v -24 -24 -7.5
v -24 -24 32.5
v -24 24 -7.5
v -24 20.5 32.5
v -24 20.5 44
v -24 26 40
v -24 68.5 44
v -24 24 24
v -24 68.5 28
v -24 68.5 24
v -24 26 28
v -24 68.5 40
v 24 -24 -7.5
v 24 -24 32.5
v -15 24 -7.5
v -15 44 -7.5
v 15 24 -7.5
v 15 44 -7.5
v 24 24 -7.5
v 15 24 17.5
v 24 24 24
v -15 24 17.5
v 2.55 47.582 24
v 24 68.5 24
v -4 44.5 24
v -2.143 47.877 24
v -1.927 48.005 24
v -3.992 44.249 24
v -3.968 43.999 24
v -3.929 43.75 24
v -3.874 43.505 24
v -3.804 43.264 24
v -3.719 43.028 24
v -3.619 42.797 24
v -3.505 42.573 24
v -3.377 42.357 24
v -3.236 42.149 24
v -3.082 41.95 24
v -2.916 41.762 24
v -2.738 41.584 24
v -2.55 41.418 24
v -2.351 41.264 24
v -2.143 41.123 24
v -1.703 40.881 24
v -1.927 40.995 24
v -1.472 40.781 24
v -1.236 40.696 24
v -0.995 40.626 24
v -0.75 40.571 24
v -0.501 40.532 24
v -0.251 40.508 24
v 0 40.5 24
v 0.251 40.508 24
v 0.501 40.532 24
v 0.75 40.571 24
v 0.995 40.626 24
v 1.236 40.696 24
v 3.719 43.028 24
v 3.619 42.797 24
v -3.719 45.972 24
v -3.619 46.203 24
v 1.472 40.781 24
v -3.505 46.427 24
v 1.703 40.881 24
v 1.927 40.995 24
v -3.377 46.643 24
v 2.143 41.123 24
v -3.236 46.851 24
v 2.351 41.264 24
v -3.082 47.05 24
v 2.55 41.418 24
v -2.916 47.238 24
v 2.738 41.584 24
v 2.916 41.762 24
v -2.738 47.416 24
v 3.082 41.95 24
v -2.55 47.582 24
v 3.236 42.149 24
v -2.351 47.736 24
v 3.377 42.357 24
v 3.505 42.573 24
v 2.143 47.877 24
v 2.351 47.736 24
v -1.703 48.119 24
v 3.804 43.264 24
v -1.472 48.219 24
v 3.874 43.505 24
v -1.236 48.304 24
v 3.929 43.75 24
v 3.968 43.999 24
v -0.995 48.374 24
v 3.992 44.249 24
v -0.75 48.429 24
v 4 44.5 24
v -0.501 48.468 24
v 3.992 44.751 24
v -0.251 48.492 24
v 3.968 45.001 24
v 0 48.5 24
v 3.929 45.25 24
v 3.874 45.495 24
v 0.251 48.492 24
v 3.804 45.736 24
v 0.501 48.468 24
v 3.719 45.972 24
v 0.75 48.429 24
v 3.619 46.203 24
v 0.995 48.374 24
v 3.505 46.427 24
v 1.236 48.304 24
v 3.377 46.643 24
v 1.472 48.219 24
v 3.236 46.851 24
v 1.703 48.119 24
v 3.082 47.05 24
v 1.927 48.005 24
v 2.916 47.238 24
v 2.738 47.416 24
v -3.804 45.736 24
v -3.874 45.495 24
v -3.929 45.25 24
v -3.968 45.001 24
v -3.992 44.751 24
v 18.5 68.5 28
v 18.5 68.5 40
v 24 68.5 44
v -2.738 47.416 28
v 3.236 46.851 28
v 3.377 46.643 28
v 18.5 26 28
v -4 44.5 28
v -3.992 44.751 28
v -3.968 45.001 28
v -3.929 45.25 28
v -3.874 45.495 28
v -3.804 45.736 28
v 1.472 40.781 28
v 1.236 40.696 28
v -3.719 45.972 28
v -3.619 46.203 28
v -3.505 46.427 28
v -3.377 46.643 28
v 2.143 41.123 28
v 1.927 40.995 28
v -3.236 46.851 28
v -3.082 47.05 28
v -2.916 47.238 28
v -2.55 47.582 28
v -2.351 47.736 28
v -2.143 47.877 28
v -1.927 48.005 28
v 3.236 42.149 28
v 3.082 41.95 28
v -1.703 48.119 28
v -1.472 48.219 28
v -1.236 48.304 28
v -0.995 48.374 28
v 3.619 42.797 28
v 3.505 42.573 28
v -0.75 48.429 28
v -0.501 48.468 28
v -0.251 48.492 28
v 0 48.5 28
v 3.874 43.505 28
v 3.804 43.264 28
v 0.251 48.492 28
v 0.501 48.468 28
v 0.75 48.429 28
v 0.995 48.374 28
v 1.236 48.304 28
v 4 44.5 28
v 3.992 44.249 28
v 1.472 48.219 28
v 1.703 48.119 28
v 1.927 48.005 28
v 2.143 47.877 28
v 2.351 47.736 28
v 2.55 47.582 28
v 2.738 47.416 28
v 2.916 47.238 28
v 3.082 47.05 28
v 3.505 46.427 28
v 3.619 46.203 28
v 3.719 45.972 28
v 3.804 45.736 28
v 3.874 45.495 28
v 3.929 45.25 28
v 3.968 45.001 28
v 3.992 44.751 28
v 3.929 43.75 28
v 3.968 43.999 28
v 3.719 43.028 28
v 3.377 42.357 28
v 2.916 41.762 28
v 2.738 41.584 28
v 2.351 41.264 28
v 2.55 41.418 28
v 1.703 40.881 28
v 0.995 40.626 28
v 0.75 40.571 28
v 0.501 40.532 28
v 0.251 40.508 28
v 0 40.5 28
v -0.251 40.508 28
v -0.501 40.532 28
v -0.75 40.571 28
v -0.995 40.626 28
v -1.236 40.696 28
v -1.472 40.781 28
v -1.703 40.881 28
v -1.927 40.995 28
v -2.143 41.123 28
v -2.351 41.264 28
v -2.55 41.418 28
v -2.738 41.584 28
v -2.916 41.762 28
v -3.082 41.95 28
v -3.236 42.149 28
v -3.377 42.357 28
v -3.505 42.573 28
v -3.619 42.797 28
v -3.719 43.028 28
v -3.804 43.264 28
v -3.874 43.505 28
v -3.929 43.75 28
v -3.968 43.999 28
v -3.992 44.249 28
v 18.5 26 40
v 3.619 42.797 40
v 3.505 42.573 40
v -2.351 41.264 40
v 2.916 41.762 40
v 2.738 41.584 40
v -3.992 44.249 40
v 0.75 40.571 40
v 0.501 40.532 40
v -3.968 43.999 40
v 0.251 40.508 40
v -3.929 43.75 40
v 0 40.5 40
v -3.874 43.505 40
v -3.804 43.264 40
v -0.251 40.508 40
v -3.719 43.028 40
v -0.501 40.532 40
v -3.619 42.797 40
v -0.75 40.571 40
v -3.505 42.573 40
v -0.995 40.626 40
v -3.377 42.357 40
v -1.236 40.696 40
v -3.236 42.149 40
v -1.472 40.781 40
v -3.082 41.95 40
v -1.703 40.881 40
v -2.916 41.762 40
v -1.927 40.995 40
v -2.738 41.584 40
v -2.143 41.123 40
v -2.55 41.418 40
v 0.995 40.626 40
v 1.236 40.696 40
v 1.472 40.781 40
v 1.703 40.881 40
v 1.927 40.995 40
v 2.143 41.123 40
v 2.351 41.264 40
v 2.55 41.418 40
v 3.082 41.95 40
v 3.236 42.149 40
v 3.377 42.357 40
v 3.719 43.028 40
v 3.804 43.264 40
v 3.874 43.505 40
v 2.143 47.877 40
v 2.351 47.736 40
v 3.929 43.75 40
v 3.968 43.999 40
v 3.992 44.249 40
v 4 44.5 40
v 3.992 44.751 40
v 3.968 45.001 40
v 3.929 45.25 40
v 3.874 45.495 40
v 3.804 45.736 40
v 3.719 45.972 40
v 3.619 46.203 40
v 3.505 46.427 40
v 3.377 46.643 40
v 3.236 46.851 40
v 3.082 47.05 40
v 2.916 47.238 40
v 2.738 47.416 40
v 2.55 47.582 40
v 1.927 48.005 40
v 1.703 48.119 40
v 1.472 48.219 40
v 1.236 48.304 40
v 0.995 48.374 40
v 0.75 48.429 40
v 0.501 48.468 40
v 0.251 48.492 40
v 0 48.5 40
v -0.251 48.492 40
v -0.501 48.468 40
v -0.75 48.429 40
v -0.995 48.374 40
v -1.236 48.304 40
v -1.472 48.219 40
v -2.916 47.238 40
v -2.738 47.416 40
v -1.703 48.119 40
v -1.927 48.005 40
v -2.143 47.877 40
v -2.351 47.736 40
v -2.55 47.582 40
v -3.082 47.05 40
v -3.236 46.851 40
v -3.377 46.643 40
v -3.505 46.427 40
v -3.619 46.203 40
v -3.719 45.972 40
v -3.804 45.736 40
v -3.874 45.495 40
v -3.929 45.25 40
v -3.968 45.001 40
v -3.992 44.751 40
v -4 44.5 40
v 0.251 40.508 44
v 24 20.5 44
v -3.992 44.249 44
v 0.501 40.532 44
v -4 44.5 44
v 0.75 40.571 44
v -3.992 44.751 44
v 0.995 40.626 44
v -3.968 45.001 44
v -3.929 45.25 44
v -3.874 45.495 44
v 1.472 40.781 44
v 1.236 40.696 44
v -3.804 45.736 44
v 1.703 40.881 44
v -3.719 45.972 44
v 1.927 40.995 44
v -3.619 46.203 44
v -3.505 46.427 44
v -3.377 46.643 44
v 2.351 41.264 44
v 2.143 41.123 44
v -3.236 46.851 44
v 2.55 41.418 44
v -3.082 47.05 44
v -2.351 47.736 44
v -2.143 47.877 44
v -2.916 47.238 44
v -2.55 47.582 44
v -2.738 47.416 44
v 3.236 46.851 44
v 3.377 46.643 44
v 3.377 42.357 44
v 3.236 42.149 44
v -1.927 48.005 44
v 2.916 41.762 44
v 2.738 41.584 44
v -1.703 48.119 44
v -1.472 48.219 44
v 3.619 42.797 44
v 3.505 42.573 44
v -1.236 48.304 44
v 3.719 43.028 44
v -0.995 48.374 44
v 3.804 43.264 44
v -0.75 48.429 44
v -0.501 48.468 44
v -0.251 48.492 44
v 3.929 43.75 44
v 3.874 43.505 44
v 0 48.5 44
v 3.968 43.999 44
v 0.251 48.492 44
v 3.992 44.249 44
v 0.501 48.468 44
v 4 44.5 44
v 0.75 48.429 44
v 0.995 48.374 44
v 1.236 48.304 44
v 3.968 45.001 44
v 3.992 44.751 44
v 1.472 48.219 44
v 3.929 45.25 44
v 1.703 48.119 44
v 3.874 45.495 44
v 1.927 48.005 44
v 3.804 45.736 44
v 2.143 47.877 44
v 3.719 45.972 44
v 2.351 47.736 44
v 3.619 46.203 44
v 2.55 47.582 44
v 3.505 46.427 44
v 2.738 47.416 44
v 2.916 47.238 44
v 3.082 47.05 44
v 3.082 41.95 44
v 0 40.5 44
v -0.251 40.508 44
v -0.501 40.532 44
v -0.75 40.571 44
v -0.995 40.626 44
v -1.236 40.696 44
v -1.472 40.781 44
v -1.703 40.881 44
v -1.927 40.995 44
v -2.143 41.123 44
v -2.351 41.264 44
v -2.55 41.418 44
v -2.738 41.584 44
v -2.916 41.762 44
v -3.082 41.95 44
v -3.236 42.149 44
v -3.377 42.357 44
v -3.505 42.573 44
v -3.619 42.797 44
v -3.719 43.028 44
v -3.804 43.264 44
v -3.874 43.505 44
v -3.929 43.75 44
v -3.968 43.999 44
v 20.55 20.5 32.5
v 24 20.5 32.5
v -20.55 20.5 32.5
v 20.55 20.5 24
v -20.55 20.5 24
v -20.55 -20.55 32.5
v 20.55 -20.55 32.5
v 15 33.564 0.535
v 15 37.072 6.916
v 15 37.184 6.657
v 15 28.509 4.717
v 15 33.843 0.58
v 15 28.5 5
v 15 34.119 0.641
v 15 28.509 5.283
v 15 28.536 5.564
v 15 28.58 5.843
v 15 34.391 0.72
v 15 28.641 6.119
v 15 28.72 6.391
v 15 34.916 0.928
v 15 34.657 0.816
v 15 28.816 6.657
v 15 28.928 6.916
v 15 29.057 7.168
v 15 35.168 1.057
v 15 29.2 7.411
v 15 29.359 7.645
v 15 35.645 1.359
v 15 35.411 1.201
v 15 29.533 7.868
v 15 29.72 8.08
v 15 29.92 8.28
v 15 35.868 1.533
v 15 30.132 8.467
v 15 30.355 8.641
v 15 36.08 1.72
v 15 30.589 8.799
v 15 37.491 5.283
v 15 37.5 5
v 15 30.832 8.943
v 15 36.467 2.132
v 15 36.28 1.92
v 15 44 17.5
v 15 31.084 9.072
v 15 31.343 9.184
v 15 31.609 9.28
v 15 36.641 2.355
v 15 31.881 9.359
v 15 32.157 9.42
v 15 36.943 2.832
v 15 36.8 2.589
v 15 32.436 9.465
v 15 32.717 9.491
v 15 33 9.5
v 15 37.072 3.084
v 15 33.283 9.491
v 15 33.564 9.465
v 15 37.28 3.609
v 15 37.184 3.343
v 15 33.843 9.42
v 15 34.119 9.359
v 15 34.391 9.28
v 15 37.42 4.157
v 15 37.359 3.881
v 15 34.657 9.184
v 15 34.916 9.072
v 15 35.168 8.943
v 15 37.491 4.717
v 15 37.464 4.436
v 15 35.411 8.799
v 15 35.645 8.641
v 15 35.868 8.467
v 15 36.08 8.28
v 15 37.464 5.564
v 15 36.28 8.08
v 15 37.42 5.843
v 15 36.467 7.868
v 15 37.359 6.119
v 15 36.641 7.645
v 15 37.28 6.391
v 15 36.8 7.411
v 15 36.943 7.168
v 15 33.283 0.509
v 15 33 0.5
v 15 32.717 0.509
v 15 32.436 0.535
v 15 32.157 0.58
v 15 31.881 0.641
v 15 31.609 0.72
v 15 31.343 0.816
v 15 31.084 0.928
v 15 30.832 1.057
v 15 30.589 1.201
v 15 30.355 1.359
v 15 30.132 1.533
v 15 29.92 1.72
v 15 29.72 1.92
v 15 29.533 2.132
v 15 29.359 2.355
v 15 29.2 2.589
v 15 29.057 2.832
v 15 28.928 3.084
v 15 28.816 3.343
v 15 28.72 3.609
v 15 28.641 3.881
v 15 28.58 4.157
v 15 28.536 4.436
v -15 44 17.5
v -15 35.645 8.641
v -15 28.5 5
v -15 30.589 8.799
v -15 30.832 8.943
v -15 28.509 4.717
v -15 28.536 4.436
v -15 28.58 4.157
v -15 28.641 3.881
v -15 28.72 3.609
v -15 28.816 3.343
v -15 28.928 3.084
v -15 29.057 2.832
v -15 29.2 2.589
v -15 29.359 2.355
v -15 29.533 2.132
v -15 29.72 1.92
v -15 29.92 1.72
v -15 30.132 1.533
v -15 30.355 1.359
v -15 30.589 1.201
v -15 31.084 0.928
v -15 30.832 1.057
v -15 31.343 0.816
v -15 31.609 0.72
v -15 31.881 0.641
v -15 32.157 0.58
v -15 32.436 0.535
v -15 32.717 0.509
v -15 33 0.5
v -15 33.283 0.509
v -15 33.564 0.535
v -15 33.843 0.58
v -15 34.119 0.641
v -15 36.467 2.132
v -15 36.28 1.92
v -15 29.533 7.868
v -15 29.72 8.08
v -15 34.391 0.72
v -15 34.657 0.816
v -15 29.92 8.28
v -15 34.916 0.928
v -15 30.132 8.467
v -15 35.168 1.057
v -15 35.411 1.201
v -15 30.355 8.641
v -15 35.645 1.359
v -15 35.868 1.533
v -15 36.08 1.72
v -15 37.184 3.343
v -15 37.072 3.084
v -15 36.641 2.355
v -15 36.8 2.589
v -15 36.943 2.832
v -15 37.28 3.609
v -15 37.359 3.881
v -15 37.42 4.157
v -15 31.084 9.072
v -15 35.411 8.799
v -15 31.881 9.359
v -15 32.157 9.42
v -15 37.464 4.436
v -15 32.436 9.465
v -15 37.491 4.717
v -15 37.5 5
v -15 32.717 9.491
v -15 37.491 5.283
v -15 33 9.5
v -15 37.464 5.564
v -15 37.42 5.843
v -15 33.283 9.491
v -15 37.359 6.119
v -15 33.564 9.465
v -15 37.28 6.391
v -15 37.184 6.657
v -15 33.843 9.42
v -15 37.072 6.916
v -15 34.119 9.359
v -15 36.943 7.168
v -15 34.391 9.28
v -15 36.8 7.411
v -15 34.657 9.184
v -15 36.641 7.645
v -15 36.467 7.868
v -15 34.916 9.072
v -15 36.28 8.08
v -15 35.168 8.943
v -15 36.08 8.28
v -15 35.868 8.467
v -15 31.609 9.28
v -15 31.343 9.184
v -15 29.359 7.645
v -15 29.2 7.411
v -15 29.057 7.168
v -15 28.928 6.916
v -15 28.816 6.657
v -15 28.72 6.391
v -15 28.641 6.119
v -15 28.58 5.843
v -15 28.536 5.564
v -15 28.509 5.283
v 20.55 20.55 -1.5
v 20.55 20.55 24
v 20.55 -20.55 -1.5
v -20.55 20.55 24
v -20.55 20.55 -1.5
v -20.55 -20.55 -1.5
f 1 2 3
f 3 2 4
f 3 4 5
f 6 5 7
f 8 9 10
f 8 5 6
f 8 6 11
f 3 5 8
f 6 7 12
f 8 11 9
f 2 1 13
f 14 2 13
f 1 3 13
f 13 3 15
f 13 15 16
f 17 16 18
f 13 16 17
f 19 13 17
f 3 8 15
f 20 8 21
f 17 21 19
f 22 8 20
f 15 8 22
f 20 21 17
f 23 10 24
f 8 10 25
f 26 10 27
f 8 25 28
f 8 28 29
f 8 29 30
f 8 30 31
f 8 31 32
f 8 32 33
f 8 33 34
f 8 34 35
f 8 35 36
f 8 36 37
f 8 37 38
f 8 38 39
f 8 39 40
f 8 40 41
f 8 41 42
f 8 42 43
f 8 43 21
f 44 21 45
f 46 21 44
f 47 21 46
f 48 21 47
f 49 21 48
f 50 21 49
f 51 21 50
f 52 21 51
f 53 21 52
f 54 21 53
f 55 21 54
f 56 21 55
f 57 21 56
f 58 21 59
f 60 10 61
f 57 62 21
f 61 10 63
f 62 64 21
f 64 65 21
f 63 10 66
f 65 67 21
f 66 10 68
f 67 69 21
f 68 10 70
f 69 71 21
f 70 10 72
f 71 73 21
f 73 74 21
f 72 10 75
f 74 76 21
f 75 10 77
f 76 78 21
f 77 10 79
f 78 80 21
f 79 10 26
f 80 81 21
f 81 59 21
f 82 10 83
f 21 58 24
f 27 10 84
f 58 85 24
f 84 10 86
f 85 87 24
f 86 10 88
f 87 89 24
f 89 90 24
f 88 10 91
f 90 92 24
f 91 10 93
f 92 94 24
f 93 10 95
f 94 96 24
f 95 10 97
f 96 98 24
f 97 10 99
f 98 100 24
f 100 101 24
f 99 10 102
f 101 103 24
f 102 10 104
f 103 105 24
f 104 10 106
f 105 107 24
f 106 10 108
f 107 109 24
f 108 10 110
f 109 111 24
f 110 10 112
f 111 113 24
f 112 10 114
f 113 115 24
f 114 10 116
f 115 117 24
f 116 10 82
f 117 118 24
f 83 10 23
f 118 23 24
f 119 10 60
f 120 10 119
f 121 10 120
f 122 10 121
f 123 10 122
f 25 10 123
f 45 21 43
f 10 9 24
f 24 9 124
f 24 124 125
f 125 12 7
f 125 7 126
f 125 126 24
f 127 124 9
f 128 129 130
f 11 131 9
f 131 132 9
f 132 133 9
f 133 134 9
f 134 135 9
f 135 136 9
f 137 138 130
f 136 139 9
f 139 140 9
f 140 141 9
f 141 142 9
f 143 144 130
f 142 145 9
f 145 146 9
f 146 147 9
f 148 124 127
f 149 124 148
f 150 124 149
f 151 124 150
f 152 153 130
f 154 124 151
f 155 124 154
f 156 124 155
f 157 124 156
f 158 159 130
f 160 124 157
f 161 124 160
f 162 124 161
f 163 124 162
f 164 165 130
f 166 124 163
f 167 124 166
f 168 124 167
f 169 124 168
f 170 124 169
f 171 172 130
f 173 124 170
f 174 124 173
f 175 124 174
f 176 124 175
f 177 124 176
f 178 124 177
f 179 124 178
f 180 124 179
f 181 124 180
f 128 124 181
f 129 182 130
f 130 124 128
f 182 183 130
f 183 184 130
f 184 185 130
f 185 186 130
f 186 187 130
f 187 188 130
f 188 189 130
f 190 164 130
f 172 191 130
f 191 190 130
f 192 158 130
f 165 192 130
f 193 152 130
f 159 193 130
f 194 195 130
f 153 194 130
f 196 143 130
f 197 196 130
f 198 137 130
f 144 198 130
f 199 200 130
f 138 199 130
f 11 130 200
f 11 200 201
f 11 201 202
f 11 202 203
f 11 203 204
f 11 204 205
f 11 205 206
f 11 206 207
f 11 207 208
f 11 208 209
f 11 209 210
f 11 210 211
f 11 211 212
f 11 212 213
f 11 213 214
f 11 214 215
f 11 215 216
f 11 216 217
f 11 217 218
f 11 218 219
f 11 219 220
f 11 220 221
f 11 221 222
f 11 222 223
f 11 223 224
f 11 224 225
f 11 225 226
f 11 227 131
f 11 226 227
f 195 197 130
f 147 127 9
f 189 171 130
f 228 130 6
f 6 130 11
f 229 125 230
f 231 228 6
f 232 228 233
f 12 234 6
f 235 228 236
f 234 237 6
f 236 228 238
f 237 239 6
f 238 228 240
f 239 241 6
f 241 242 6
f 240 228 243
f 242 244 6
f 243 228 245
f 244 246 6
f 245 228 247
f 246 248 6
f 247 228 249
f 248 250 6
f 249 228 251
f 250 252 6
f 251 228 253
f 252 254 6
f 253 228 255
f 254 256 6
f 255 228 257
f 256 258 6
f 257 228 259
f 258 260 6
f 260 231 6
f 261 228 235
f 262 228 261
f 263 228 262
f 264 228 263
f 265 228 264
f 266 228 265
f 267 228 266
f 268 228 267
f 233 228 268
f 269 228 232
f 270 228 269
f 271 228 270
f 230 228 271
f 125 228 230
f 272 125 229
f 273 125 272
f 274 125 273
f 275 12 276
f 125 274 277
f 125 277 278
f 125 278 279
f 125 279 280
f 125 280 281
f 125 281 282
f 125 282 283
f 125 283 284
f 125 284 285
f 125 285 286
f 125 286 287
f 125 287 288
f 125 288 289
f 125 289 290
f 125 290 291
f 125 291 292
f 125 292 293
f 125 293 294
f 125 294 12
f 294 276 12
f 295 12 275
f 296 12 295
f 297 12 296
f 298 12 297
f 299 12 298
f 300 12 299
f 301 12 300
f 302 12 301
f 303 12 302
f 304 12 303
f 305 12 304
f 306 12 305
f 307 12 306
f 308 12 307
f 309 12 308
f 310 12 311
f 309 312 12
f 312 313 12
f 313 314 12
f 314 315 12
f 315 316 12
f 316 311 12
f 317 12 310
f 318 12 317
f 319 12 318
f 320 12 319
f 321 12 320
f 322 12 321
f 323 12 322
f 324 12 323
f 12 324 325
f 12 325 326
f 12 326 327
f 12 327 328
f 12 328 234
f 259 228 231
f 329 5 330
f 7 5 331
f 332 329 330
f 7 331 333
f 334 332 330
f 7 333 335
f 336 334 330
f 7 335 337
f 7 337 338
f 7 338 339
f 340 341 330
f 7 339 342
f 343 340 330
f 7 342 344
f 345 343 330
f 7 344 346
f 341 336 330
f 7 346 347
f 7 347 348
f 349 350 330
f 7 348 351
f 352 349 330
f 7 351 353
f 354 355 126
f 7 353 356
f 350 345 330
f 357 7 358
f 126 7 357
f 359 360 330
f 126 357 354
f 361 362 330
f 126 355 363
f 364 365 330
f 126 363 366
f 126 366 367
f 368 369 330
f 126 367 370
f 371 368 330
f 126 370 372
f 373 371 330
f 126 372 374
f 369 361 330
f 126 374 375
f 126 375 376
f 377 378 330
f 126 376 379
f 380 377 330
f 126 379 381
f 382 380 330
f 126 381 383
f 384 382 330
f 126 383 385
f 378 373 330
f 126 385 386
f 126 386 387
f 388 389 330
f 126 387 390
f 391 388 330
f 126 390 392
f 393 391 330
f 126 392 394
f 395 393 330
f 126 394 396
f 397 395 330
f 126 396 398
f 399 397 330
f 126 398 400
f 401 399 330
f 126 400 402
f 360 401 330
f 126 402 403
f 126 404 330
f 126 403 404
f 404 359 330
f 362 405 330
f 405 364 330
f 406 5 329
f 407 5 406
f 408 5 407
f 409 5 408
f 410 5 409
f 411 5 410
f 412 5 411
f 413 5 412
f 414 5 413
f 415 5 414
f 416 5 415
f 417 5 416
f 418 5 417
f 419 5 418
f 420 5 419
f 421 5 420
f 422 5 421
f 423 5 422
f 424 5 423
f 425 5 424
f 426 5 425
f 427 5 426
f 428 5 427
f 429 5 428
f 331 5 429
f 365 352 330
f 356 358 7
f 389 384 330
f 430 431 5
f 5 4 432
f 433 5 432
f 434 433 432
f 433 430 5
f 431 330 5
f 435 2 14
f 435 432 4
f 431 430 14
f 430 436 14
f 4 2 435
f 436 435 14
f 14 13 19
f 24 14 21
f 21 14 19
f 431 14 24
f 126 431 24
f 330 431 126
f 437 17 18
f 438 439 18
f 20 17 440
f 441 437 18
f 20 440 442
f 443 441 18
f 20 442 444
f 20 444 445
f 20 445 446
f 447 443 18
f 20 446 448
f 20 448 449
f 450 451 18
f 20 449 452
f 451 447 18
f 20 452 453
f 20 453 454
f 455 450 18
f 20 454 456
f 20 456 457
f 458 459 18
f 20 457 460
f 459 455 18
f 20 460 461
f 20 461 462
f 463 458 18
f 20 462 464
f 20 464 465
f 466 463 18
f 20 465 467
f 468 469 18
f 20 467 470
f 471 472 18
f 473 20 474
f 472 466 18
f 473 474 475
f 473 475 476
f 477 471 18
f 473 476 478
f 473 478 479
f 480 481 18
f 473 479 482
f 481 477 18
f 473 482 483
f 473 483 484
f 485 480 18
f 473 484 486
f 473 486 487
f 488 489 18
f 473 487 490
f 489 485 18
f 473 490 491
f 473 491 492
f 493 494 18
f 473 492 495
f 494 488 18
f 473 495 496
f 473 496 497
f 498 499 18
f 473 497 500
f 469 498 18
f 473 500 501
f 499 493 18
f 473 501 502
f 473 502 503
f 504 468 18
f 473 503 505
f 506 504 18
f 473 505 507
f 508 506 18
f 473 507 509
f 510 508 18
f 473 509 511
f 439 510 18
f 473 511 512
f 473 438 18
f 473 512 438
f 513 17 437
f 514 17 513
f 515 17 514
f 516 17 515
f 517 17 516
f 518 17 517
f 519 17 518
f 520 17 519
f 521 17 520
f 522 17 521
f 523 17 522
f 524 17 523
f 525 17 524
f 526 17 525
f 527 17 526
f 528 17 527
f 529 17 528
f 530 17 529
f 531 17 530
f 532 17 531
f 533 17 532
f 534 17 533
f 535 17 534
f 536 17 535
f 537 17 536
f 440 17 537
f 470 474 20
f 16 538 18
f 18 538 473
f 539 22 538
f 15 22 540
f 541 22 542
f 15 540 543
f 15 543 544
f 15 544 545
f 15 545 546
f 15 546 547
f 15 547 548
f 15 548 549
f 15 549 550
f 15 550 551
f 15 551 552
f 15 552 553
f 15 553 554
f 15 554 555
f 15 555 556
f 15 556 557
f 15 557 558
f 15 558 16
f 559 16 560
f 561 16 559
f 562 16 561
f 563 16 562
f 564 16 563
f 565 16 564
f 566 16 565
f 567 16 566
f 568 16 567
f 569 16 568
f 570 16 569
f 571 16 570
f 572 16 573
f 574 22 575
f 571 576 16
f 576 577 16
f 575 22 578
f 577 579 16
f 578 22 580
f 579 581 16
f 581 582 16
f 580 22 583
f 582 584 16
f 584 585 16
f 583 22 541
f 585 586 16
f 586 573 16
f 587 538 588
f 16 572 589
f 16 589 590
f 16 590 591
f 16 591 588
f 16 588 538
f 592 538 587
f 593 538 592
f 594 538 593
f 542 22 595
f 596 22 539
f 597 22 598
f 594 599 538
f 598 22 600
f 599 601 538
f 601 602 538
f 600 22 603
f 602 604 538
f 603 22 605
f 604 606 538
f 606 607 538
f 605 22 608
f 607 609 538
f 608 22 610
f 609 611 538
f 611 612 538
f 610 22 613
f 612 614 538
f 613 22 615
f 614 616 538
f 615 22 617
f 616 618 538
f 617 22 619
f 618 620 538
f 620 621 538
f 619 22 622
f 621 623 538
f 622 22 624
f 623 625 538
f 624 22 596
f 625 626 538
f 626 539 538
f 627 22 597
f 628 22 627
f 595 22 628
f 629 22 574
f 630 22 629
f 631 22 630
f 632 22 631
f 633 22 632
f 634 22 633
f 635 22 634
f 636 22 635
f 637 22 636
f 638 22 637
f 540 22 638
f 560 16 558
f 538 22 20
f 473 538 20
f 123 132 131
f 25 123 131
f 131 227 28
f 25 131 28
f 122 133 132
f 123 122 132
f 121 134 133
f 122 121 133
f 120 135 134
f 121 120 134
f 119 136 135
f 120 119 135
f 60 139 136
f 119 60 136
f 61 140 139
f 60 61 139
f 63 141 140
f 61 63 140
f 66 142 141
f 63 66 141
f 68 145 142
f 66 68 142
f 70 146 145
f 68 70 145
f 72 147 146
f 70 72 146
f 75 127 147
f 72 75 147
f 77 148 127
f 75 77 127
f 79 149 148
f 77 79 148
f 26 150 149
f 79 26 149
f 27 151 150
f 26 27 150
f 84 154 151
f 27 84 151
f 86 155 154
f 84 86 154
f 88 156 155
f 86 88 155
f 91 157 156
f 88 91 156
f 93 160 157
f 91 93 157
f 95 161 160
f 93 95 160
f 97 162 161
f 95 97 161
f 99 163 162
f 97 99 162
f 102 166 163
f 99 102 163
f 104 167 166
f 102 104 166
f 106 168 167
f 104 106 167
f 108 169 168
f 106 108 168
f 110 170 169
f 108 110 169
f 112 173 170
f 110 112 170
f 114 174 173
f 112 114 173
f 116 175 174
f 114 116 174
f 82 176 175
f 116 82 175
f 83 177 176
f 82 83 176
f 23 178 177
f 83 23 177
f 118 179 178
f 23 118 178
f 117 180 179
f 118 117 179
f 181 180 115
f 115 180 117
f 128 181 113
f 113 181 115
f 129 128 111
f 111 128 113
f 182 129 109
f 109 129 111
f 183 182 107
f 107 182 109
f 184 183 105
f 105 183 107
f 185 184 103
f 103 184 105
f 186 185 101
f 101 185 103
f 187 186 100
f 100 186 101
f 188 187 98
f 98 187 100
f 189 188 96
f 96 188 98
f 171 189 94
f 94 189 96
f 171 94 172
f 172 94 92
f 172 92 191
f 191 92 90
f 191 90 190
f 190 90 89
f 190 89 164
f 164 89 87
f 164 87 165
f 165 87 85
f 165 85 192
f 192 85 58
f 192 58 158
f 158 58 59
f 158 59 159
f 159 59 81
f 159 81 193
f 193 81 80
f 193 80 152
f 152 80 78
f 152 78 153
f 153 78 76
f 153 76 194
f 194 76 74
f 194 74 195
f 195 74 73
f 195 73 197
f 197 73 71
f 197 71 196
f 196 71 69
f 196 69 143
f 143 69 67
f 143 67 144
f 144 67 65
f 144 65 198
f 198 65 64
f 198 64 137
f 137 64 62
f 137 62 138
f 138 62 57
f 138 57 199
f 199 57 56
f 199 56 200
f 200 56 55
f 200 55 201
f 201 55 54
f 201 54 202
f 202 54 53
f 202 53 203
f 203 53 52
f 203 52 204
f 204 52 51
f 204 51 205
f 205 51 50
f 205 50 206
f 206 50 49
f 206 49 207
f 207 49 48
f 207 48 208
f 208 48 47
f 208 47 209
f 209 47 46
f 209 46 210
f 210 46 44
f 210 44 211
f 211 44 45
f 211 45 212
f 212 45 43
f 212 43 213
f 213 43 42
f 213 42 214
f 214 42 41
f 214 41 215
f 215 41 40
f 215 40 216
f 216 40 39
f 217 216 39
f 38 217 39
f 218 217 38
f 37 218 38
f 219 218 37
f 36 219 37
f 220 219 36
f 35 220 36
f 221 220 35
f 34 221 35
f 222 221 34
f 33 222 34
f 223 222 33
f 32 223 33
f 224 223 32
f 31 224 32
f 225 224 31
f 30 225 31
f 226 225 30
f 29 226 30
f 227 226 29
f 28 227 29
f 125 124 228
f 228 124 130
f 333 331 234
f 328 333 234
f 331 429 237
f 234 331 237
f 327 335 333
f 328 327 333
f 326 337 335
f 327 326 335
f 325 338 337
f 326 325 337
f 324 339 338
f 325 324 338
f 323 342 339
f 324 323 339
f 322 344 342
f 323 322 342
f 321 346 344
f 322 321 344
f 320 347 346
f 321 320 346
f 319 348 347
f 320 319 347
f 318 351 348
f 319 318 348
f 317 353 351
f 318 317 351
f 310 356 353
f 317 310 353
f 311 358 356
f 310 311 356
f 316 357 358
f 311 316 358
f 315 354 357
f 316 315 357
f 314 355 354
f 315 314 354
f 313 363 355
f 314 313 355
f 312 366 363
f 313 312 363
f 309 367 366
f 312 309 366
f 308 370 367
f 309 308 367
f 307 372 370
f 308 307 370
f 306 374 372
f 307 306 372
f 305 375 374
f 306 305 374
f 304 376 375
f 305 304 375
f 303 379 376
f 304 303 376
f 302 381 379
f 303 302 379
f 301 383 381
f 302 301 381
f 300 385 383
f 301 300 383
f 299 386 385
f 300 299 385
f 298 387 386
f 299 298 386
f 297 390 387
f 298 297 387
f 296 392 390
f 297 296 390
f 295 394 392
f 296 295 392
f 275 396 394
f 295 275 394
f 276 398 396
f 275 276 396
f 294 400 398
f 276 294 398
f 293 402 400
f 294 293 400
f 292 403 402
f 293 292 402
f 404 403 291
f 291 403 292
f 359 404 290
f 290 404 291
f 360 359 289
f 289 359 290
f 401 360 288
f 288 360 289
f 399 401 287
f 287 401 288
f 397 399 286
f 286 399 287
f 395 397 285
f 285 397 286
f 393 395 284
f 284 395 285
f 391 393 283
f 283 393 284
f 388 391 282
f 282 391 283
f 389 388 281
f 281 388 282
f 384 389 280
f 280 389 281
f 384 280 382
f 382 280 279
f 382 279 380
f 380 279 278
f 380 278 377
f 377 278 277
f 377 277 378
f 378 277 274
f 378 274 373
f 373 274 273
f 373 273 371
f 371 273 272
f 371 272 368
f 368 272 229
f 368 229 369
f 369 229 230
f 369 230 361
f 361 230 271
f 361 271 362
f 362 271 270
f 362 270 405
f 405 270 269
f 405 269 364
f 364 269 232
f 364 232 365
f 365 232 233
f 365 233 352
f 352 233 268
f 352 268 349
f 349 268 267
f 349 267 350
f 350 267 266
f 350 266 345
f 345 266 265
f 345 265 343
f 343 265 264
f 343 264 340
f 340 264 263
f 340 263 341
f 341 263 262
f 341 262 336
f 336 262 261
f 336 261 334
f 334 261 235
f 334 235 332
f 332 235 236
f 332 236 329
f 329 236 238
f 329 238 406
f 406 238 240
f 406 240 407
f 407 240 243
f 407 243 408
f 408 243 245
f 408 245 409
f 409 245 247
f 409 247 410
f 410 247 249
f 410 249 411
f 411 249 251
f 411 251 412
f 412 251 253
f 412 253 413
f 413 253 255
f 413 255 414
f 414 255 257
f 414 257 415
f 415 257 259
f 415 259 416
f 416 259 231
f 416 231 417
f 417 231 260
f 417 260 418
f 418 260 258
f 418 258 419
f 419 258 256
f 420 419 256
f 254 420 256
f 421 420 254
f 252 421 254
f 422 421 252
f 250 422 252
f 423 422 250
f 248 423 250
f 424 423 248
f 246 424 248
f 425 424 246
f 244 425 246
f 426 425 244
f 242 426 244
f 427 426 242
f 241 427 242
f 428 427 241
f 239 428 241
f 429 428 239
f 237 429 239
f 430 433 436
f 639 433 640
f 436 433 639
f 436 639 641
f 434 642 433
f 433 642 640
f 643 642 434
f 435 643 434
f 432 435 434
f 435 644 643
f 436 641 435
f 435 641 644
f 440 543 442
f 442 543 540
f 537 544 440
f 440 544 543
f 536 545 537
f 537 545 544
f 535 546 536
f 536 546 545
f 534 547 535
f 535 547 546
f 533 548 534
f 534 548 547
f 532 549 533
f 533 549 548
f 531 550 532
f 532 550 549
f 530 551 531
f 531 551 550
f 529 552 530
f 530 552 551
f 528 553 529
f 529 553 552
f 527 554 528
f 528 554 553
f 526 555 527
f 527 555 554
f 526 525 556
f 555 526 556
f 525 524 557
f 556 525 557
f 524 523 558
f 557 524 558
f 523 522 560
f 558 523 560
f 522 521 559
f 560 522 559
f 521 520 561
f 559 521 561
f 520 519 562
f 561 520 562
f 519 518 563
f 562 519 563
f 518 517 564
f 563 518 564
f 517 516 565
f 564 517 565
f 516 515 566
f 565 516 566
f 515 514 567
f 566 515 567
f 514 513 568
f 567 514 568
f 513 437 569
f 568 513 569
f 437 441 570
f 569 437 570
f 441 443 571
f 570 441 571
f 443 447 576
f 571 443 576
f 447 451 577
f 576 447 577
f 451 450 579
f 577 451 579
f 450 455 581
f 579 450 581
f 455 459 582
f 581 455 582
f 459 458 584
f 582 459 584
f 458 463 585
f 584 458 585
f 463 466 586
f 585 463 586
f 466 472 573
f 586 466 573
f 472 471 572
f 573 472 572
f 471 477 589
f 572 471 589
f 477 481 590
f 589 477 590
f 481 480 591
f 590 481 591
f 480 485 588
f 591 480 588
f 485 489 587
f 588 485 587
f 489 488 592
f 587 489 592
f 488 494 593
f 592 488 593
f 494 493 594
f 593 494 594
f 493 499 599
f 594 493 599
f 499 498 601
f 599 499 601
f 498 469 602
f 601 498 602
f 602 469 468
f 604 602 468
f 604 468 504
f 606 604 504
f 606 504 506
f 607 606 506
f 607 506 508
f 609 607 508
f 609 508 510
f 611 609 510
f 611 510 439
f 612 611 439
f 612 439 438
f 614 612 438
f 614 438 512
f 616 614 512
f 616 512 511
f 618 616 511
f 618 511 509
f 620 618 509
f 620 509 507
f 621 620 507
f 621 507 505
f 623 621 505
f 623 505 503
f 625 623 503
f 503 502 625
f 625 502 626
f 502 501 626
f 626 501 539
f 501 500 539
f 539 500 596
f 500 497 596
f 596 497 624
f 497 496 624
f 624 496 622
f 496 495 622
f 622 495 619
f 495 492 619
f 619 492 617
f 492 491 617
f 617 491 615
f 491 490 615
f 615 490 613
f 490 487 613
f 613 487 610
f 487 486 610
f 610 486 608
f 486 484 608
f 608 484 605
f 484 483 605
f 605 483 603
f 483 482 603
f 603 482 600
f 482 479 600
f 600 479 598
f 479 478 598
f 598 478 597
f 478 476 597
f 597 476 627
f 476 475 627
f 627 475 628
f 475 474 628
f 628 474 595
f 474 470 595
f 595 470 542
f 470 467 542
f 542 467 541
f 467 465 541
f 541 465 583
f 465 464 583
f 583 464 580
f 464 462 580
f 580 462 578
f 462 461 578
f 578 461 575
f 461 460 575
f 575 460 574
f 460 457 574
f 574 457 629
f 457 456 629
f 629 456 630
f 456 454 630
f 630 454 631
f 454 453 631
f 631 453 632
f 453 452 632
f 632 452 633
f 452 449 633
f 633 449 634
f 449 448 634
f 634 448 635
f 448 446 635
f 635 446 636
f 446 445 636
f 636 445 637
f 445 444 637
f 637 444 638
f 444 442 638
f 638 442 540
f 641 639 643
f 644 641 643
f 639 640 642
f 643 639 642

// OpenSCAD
// file: lib.scad
module prism(l, w, h) {
translate([0, l, 0]) rotate( a= [90, 0, 0])
linear_extrude(height = l) polygon(points = [
[0, 0],
[w, 0],
[0, h]
], paths=[[0,1,2,0]]);
}

module bearing_holder(l, h, r1, r2, holder_depth, holder_thick=2) {
	union(){
		difference(){
			union(){
				translate([-r1,0,-l/2]) cube([r1*2,h,l]);
				cylinder (h = l, r=r1, center = true, $fn=100);
			}
			translate([0,-r1/2,0]) cube([r1*2+1, r1, l+1], center=true);
			translate([0,r1,0]) cube([r1*2+1, 3, 6], center=true);
			cylinder (h = l+1, r=r2, center = true, $fn=100);
		}
		translate([0,(h+r2-holder_thick)/2,l/2+holder_thick/2]) cube([r1*2,h-r2+holder_thick,holder_thick], center=true);
		translate([0,(h+r2-holder_thick)/2,-(l/2+holder_thick/2)]) cube([r1*2,h-r2+holder_thick,holder_thick], center=true);
	}
}

module single_bearing_frame(r1, r2, h, l, d, holder_depth, holder_thick=2, bar_offset=false){
	difference(){
		union(){
			translate([0,0,h/2]) rotate([-90,0,0]) bearing_holder(l, h, r1, r2, holder_depth);
			translate([0,l/2+(d+l)/4,-r2/2+holder_depth/2]) cube([r1*2,(d+l)/2,h-r2+holder_depth], center=true);
			translate([0,-(l/2+(d+l)/4),-r2/2+holder_depth/2]) cube([r1*2,(d+l)/2,h-r2+holder_depth], center=true);
		}
		if (bar_offset != false){
			translate([0,-(d+l)/2,-h/2+bar_offset]) rotate([0,90,0]) cylinder(r=4.5, h=r1*2.5,center=true,$fn=100);
			translate([0,(d+l)/2,-h/2+bar_offset]) rotate([0,90,0]) cylinder(r=4.5, h=r1*2.5,center=true,$fn=100);		
		}
		translate([0,-(l/2+(d+l)/4+holder_thick/2+1),h/4]) cube([r1*2+1,(d+l)/2-holder_thick+2,h/2], center=true);
		translate([0,(l/2+(d+l)/4+holder_thick/2+1),h/4]) cube([r1*2+1,(d+l)/2-holder_thick+2,h/2], center=true);
	}
}

module double_bearing_frame(r1, r2, h, l, d, holder_depth, holder_thick=2, bar_offset=false){
	difference(){
		union(){
			translate([0,-((d+l)/2-holder_thick),h/2]) rotate([-90,0,0]) bearing_holder(l, h, r1, r2, holder_depth);
			translate([0,(d+l)/2-holder_thick,h/2]) rotate([-90,0,0]) bearing_holder(l, h, r1, r2, holder_depth);

			translate([0,0,-r2/2+holder_depth/2]) cube([r1*2,d-holder_thick*2,h-r2+holder_depth], center=true);

			translate([0,d/2+l-holder_thick/2,-r2/2+holder_depth/2]) cube([r1*2,holder_thick,h-r2+holder_depth], center=true);
			translate([0,-d/2-l+holder_thick/2,-r2/2+holder_depth/2]) cube([r1*2,holder_thick,h-r2+holder_depth], center=true);
		}
		if (bar_offset != false){
			translate([0,-(d+l)/2,-h/2+bar_offset]) rotate([0,90,0]) cylinder(r=4.5, h=r1*2.5,center=true,$fn=100);
			translate([0,(d+l)/2,-h/2+bar_offset]) rotate([0,90,0]) cylinder(r=4.5, h=r1*2.5,center=true,$fn=100);	
		}
		translate([0,0,h/4]) cube([r1*2+1,d-4*holder_thick,h/2], center=true);
	}
}

module motor_holder(){
	rotate([90,0,0]) difference(){
		translate([0,-1.9,0]) cube([50,46.2,10],center=true);
		translate([0,1,3]) cube([42.4,44.4,7],center=true);
		for(pos = [[-15.5,15.5,0],[15.5,15.5,0],[15.5,-15.5,0],[-15.5,-15.5,0]]){
			translate(pos) cylinder(r=1.7,h=11,center=true,$fn=100);
		}
		
		translate([0,21,-3]) cube([23.4,42.4,7],center=true);
		cylinder(r=11.5,h=20,center=true,$fn=100);
	}
}

module feame_connector(){
	translate([0,0,12.5]) difference(){
		cube([48,48,40], center=true);
		translate([0,0,6]) cube([41.1,41.1,40], center=true);
	}
	translate([0,0,5]) difference(){
		union(){
			translate([0,34,0]) cube([30,20,25], center=true);
		}
		translate([0,33,0]) rotate([0,90,0]) cylinder(r=4.5,h=31,center=true,$fn=100);
	}
}

module nut_holder(r1=5, r2=4, h=6){
	difference(){
		rotate([0,90,0]) cylinder(h=h,r=5,$fn=6,center=true);
		rotate([0,90,0]) cylinder(h=h+1,r=4,$fn=6,center=true);
	}
}

/*
r1 = 10;
r2 = 7.5;
h = 40;
l = 24;
d = 50;
holder_depth = 2.5;
//bearing_holder(l, h, r1, r2, holder_depth);
//single_bearing_frame(r1, r2, h, l, d, holder_depth, bar_offset=10);
//double_bearing_frame(r1, r2, h, l, d, holder_depth, bar_offset=10);
//motor_holder();
feame_connector();
/*
*/
// main file
include <lib.scad>;
include <lib.scad>;

feame_connector();

translate([0,44.5,50]) difference(){
	union(){
		translate([0,0,-16]) difference(){
			cube([48,48,20], center=true);
			translate([-3,3,0]) cube([43,43,12], center=true);
		}
	}
	translate([0,0,-10]) cylinder(r=4,h=50,center=true,$fn=100);
}
